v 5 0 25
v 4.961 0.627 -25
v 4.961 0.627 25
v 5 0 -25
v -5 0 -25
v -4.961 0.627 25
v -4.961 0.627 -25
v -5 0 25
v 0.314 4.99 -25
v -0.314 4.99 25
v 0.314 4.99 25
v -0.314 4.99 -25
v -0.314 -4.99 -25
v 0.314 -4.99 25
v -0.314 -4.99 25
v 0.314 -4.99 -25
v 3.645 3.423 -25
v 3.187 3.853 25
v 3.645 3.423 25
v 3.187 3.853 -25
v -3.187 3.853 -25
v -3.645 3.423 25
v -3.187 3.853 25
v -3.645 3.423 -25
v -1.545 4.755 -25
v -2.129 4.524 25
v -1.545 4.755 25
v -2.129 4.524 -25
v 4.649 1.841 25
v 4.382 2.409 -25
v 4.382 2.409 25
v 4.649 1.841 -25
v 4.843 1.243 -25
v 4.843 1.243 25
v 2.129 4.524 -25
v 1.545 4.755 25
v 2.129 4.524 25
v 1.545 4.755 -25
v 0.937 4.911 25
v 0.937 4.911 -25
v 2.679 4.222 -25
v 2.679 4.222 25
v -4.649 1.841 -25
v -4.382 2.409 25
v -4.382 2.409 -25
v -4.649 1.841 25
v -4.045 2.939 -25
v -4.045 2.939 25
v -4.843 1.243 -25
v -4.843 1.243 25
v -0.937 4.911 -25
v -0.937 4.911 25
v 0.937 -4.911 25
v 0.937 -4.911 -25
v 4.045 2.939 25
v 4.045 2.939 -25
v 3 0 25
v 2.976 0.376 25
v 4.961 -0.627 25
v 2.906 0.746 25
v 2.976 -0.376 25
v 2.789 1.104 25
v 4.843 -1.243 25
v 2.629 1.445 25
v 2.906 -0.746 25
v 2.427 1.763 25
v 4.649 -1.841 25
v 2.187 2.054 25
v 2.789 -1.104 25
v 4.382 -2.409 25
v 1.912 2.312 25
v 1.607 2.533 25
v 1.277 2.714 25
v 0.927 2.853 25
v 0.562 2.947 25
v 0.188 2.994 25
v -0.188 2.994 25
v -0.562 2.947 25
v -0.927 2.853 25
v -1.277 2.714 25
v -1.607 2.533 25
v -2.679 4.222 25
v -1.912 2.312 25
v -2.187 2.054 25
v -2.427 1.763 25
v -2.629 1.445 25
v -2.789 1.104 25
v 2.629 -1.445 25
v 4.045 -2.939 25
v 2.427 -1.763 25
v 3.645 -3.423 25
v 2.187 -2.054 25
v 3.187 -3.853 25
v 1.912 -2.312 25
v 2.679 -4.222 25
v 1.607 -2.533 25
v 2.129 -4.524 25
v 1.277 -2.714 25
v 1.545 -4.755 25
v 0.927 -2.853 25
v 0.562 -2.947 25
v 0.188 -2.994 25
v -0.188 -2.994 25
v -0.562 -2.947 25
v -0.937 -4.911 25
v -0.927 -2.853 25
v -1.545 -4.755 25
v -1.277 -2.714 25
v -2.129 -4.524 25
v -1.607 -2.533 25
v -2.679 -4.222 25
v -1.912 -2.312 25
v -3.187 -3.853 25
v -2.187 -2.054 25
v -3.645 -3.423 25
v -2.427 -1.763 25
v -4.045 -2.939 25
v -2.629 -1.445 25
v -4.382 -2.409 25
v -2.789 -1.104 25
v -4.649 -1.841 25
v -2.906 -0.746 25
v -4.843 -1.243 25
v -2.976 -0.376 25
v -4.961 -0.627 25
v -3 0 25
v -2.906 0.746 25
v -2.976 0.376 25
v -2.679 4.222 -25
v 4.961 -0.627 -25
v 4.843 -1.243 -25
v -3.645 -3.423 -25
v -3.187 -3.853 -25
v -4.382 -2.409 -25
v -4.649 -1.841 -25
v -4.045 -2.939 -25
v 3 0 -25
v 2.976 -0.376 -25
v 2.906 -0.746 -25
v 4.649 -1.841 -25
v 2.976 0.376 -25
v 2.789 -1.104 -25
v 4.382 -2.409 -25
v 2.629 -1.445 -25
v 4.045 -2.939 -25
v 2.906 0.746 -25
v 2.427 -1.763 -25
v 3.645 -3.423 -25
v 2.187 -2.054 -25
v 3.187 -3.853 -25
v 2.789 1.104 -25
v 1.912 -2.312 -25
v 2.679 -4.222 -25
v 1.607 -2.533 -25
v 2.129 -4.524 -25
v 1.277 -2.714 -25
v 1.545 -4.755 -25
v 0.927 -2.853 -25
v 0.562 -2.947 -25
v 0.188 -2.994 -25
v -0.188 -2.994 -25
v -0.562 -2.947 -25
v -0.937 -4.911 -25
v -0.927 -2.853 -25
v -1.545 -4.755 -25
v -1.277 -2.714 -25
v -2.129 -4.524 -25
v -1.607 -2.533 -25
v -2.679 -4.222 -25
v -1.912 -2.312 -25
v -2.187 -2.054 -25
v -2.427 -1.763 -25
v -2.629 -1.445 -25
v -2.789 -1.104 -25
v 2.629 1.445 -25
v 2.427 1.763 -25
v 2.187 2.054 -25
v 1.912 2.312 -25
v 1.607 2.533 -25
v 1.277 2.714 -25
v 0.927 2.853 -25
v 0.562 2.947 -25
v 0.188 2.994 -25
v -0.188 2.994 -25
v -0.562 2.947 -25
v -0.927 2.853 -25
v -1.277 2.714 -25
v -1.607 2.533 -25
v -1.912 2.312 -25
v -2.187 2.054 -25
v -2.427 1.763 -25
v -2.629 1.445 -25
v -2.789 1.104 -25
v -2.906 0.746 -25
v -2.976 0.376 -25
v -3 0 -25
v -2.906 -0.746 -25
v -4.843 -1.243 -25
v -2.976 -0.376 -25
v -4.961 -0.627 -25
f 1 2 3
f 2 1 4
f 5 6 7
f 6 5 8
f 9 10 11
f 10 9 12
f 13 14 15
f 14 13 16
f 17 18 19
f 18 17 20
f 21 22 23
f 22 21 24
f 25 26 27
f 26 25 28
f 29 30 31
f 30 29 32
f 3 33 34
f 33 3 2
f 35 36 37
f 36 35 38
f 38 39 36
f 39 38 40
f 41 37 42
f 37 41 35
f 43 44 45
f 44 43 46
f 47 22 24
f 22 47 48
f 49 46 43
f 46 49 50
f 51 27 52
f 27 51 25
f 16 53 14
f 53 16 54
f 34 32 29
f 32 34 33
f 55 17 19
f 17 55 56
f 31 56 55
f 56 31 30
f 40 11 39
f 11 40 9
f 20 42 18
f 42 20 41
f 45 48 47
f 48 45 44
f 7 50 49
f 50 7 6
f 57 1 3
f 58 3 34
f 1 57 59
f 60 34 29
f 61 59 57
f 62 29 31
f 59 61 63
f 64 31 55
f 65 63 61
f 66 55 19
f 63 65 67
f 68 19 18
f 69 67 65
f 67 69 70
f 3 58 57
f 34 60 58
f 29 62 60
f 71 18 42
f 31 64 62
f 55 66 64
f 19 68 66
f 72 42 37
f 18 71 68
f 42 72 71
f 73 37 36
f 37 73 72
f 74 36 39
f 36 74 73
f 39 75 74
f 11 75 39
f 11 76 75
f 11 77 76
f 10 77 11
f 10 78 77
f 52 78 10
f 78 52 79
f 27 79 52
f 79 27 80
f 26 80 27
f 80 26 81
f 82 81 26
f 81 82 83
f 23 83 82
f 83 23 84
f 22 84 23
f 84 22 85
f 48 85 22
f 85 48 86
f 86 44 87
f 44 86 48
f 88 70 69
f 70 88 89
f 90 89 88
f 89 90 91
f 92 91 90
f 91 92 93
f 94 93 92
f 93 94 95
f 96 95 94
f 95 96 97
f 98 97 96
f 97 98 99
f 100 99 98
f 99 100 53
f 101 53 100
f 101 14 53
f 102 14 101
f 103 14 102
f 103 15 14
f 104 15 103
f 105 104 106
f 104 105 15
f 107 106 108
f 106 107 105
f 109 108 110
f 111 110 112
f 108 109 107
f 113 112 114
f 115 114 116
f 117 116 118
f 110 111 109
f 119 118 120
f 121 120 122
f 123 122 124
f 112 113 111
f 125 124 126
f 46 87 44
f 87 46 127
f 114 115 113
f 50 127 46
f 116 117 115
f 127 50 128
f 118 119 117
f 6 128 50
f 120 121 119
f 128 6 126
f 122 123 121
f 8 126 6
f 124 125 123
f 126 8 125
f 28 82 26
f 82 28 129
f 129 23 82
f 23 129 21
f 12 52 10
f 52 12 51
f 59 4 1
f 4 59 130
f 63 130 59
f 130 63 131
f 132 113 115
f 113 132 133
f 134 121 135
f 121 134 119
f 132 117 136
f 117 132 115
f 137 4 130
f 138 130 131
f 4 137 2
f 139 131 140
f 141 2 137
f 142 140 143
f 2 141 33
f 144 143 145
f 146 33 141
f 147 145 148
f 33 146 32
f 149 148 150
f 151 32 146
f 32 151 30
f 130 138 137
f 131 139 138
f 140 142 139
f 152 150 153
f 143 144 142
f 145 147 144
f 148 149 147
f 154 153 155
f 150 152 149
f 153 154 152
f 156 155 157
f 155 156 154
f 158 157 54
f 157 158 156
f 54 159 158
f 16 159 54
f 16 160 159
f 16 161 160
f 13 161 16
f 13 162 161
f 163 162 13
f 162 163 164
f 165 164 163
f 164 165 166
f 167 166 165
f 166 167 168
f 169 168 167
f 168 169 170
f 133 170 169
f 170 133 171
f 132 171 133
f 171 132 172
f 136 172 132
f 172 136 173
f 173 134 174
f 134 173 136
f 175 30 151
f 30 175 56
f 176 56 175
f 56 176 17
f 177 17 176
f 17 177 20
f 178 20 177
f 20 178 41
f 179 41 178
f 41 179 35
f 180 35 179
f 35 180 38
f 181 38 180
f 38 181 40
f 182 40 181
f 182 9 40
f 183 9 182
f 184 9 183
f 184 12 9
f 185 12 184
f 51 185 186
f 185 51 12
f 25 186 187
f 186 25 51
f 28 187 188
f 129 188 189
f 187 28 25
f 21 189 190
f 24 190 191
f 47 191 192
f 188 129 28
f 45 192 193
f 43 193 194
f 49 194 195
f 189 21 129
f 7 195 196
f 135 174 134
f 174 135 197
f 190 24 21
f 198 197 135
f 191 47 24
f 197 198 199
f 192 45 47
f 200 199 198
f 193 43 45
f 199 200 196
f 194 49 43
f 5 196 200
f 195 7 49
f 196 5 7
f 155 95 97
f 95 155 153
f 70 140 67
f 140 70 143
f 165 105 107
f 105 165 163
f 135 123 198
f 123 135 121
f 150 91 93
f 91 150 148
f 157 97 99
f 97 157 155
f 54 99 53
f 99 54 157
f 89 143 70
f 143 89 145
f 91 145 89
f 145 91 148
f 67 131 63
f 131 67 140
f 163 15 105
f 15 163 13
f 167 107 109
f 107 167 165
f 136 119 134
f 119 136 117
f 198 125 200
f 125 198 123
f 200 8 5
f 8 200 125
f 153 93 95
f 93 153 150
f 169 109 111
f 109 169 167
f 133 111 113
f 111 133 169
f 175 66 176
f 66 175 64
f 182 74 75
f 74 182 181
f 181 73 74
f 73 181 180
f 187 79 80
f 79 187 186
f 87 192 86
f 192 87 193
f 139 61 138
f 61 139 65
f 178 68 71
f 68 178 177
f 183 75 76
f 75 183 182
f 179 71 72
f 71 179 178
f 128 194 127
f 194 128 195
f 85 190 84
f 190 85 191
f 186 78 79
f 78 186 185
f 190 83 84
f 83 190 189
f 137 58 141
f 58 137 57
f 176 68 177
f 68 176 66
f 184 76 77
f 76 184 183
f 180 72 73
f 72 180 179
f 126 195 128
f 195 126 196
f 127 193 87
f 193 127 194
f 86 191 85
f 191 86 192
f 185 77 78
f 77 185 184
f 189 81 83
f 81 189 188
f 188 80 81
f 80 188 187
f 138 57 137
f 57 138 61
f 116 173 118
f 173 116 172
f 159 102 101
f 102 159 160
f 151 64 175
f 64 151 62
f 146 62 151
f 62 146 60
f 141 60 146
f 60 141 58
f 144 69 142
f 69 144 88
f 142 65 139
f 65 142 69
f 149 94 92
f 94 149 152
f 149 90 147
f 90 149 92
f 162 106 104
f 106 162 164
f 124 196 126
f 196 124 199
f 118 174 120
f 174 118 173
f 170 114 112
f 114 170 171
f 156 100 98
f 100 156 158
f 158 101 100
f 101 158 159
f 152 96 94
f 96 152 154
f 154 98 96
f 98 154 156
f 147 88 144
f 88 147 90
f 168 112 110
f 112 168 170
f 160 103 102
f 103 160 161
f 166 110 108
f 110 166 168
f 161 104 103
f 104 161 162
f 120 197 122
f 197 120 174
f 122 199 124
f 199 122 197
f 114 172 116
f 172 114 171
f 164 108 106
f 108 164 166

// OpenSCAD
$fn = 50;


difference() {
	union() {
		translate(v = [0, 0, -25.0000000000]) {
			cylinder(h = 50, r = 5.0000000000);
		}
	}
	union() {
		translate(v = [0, 0, -100.0000000000]) {
			cylinder(h = 200, r = 3);
		}
	}
}
